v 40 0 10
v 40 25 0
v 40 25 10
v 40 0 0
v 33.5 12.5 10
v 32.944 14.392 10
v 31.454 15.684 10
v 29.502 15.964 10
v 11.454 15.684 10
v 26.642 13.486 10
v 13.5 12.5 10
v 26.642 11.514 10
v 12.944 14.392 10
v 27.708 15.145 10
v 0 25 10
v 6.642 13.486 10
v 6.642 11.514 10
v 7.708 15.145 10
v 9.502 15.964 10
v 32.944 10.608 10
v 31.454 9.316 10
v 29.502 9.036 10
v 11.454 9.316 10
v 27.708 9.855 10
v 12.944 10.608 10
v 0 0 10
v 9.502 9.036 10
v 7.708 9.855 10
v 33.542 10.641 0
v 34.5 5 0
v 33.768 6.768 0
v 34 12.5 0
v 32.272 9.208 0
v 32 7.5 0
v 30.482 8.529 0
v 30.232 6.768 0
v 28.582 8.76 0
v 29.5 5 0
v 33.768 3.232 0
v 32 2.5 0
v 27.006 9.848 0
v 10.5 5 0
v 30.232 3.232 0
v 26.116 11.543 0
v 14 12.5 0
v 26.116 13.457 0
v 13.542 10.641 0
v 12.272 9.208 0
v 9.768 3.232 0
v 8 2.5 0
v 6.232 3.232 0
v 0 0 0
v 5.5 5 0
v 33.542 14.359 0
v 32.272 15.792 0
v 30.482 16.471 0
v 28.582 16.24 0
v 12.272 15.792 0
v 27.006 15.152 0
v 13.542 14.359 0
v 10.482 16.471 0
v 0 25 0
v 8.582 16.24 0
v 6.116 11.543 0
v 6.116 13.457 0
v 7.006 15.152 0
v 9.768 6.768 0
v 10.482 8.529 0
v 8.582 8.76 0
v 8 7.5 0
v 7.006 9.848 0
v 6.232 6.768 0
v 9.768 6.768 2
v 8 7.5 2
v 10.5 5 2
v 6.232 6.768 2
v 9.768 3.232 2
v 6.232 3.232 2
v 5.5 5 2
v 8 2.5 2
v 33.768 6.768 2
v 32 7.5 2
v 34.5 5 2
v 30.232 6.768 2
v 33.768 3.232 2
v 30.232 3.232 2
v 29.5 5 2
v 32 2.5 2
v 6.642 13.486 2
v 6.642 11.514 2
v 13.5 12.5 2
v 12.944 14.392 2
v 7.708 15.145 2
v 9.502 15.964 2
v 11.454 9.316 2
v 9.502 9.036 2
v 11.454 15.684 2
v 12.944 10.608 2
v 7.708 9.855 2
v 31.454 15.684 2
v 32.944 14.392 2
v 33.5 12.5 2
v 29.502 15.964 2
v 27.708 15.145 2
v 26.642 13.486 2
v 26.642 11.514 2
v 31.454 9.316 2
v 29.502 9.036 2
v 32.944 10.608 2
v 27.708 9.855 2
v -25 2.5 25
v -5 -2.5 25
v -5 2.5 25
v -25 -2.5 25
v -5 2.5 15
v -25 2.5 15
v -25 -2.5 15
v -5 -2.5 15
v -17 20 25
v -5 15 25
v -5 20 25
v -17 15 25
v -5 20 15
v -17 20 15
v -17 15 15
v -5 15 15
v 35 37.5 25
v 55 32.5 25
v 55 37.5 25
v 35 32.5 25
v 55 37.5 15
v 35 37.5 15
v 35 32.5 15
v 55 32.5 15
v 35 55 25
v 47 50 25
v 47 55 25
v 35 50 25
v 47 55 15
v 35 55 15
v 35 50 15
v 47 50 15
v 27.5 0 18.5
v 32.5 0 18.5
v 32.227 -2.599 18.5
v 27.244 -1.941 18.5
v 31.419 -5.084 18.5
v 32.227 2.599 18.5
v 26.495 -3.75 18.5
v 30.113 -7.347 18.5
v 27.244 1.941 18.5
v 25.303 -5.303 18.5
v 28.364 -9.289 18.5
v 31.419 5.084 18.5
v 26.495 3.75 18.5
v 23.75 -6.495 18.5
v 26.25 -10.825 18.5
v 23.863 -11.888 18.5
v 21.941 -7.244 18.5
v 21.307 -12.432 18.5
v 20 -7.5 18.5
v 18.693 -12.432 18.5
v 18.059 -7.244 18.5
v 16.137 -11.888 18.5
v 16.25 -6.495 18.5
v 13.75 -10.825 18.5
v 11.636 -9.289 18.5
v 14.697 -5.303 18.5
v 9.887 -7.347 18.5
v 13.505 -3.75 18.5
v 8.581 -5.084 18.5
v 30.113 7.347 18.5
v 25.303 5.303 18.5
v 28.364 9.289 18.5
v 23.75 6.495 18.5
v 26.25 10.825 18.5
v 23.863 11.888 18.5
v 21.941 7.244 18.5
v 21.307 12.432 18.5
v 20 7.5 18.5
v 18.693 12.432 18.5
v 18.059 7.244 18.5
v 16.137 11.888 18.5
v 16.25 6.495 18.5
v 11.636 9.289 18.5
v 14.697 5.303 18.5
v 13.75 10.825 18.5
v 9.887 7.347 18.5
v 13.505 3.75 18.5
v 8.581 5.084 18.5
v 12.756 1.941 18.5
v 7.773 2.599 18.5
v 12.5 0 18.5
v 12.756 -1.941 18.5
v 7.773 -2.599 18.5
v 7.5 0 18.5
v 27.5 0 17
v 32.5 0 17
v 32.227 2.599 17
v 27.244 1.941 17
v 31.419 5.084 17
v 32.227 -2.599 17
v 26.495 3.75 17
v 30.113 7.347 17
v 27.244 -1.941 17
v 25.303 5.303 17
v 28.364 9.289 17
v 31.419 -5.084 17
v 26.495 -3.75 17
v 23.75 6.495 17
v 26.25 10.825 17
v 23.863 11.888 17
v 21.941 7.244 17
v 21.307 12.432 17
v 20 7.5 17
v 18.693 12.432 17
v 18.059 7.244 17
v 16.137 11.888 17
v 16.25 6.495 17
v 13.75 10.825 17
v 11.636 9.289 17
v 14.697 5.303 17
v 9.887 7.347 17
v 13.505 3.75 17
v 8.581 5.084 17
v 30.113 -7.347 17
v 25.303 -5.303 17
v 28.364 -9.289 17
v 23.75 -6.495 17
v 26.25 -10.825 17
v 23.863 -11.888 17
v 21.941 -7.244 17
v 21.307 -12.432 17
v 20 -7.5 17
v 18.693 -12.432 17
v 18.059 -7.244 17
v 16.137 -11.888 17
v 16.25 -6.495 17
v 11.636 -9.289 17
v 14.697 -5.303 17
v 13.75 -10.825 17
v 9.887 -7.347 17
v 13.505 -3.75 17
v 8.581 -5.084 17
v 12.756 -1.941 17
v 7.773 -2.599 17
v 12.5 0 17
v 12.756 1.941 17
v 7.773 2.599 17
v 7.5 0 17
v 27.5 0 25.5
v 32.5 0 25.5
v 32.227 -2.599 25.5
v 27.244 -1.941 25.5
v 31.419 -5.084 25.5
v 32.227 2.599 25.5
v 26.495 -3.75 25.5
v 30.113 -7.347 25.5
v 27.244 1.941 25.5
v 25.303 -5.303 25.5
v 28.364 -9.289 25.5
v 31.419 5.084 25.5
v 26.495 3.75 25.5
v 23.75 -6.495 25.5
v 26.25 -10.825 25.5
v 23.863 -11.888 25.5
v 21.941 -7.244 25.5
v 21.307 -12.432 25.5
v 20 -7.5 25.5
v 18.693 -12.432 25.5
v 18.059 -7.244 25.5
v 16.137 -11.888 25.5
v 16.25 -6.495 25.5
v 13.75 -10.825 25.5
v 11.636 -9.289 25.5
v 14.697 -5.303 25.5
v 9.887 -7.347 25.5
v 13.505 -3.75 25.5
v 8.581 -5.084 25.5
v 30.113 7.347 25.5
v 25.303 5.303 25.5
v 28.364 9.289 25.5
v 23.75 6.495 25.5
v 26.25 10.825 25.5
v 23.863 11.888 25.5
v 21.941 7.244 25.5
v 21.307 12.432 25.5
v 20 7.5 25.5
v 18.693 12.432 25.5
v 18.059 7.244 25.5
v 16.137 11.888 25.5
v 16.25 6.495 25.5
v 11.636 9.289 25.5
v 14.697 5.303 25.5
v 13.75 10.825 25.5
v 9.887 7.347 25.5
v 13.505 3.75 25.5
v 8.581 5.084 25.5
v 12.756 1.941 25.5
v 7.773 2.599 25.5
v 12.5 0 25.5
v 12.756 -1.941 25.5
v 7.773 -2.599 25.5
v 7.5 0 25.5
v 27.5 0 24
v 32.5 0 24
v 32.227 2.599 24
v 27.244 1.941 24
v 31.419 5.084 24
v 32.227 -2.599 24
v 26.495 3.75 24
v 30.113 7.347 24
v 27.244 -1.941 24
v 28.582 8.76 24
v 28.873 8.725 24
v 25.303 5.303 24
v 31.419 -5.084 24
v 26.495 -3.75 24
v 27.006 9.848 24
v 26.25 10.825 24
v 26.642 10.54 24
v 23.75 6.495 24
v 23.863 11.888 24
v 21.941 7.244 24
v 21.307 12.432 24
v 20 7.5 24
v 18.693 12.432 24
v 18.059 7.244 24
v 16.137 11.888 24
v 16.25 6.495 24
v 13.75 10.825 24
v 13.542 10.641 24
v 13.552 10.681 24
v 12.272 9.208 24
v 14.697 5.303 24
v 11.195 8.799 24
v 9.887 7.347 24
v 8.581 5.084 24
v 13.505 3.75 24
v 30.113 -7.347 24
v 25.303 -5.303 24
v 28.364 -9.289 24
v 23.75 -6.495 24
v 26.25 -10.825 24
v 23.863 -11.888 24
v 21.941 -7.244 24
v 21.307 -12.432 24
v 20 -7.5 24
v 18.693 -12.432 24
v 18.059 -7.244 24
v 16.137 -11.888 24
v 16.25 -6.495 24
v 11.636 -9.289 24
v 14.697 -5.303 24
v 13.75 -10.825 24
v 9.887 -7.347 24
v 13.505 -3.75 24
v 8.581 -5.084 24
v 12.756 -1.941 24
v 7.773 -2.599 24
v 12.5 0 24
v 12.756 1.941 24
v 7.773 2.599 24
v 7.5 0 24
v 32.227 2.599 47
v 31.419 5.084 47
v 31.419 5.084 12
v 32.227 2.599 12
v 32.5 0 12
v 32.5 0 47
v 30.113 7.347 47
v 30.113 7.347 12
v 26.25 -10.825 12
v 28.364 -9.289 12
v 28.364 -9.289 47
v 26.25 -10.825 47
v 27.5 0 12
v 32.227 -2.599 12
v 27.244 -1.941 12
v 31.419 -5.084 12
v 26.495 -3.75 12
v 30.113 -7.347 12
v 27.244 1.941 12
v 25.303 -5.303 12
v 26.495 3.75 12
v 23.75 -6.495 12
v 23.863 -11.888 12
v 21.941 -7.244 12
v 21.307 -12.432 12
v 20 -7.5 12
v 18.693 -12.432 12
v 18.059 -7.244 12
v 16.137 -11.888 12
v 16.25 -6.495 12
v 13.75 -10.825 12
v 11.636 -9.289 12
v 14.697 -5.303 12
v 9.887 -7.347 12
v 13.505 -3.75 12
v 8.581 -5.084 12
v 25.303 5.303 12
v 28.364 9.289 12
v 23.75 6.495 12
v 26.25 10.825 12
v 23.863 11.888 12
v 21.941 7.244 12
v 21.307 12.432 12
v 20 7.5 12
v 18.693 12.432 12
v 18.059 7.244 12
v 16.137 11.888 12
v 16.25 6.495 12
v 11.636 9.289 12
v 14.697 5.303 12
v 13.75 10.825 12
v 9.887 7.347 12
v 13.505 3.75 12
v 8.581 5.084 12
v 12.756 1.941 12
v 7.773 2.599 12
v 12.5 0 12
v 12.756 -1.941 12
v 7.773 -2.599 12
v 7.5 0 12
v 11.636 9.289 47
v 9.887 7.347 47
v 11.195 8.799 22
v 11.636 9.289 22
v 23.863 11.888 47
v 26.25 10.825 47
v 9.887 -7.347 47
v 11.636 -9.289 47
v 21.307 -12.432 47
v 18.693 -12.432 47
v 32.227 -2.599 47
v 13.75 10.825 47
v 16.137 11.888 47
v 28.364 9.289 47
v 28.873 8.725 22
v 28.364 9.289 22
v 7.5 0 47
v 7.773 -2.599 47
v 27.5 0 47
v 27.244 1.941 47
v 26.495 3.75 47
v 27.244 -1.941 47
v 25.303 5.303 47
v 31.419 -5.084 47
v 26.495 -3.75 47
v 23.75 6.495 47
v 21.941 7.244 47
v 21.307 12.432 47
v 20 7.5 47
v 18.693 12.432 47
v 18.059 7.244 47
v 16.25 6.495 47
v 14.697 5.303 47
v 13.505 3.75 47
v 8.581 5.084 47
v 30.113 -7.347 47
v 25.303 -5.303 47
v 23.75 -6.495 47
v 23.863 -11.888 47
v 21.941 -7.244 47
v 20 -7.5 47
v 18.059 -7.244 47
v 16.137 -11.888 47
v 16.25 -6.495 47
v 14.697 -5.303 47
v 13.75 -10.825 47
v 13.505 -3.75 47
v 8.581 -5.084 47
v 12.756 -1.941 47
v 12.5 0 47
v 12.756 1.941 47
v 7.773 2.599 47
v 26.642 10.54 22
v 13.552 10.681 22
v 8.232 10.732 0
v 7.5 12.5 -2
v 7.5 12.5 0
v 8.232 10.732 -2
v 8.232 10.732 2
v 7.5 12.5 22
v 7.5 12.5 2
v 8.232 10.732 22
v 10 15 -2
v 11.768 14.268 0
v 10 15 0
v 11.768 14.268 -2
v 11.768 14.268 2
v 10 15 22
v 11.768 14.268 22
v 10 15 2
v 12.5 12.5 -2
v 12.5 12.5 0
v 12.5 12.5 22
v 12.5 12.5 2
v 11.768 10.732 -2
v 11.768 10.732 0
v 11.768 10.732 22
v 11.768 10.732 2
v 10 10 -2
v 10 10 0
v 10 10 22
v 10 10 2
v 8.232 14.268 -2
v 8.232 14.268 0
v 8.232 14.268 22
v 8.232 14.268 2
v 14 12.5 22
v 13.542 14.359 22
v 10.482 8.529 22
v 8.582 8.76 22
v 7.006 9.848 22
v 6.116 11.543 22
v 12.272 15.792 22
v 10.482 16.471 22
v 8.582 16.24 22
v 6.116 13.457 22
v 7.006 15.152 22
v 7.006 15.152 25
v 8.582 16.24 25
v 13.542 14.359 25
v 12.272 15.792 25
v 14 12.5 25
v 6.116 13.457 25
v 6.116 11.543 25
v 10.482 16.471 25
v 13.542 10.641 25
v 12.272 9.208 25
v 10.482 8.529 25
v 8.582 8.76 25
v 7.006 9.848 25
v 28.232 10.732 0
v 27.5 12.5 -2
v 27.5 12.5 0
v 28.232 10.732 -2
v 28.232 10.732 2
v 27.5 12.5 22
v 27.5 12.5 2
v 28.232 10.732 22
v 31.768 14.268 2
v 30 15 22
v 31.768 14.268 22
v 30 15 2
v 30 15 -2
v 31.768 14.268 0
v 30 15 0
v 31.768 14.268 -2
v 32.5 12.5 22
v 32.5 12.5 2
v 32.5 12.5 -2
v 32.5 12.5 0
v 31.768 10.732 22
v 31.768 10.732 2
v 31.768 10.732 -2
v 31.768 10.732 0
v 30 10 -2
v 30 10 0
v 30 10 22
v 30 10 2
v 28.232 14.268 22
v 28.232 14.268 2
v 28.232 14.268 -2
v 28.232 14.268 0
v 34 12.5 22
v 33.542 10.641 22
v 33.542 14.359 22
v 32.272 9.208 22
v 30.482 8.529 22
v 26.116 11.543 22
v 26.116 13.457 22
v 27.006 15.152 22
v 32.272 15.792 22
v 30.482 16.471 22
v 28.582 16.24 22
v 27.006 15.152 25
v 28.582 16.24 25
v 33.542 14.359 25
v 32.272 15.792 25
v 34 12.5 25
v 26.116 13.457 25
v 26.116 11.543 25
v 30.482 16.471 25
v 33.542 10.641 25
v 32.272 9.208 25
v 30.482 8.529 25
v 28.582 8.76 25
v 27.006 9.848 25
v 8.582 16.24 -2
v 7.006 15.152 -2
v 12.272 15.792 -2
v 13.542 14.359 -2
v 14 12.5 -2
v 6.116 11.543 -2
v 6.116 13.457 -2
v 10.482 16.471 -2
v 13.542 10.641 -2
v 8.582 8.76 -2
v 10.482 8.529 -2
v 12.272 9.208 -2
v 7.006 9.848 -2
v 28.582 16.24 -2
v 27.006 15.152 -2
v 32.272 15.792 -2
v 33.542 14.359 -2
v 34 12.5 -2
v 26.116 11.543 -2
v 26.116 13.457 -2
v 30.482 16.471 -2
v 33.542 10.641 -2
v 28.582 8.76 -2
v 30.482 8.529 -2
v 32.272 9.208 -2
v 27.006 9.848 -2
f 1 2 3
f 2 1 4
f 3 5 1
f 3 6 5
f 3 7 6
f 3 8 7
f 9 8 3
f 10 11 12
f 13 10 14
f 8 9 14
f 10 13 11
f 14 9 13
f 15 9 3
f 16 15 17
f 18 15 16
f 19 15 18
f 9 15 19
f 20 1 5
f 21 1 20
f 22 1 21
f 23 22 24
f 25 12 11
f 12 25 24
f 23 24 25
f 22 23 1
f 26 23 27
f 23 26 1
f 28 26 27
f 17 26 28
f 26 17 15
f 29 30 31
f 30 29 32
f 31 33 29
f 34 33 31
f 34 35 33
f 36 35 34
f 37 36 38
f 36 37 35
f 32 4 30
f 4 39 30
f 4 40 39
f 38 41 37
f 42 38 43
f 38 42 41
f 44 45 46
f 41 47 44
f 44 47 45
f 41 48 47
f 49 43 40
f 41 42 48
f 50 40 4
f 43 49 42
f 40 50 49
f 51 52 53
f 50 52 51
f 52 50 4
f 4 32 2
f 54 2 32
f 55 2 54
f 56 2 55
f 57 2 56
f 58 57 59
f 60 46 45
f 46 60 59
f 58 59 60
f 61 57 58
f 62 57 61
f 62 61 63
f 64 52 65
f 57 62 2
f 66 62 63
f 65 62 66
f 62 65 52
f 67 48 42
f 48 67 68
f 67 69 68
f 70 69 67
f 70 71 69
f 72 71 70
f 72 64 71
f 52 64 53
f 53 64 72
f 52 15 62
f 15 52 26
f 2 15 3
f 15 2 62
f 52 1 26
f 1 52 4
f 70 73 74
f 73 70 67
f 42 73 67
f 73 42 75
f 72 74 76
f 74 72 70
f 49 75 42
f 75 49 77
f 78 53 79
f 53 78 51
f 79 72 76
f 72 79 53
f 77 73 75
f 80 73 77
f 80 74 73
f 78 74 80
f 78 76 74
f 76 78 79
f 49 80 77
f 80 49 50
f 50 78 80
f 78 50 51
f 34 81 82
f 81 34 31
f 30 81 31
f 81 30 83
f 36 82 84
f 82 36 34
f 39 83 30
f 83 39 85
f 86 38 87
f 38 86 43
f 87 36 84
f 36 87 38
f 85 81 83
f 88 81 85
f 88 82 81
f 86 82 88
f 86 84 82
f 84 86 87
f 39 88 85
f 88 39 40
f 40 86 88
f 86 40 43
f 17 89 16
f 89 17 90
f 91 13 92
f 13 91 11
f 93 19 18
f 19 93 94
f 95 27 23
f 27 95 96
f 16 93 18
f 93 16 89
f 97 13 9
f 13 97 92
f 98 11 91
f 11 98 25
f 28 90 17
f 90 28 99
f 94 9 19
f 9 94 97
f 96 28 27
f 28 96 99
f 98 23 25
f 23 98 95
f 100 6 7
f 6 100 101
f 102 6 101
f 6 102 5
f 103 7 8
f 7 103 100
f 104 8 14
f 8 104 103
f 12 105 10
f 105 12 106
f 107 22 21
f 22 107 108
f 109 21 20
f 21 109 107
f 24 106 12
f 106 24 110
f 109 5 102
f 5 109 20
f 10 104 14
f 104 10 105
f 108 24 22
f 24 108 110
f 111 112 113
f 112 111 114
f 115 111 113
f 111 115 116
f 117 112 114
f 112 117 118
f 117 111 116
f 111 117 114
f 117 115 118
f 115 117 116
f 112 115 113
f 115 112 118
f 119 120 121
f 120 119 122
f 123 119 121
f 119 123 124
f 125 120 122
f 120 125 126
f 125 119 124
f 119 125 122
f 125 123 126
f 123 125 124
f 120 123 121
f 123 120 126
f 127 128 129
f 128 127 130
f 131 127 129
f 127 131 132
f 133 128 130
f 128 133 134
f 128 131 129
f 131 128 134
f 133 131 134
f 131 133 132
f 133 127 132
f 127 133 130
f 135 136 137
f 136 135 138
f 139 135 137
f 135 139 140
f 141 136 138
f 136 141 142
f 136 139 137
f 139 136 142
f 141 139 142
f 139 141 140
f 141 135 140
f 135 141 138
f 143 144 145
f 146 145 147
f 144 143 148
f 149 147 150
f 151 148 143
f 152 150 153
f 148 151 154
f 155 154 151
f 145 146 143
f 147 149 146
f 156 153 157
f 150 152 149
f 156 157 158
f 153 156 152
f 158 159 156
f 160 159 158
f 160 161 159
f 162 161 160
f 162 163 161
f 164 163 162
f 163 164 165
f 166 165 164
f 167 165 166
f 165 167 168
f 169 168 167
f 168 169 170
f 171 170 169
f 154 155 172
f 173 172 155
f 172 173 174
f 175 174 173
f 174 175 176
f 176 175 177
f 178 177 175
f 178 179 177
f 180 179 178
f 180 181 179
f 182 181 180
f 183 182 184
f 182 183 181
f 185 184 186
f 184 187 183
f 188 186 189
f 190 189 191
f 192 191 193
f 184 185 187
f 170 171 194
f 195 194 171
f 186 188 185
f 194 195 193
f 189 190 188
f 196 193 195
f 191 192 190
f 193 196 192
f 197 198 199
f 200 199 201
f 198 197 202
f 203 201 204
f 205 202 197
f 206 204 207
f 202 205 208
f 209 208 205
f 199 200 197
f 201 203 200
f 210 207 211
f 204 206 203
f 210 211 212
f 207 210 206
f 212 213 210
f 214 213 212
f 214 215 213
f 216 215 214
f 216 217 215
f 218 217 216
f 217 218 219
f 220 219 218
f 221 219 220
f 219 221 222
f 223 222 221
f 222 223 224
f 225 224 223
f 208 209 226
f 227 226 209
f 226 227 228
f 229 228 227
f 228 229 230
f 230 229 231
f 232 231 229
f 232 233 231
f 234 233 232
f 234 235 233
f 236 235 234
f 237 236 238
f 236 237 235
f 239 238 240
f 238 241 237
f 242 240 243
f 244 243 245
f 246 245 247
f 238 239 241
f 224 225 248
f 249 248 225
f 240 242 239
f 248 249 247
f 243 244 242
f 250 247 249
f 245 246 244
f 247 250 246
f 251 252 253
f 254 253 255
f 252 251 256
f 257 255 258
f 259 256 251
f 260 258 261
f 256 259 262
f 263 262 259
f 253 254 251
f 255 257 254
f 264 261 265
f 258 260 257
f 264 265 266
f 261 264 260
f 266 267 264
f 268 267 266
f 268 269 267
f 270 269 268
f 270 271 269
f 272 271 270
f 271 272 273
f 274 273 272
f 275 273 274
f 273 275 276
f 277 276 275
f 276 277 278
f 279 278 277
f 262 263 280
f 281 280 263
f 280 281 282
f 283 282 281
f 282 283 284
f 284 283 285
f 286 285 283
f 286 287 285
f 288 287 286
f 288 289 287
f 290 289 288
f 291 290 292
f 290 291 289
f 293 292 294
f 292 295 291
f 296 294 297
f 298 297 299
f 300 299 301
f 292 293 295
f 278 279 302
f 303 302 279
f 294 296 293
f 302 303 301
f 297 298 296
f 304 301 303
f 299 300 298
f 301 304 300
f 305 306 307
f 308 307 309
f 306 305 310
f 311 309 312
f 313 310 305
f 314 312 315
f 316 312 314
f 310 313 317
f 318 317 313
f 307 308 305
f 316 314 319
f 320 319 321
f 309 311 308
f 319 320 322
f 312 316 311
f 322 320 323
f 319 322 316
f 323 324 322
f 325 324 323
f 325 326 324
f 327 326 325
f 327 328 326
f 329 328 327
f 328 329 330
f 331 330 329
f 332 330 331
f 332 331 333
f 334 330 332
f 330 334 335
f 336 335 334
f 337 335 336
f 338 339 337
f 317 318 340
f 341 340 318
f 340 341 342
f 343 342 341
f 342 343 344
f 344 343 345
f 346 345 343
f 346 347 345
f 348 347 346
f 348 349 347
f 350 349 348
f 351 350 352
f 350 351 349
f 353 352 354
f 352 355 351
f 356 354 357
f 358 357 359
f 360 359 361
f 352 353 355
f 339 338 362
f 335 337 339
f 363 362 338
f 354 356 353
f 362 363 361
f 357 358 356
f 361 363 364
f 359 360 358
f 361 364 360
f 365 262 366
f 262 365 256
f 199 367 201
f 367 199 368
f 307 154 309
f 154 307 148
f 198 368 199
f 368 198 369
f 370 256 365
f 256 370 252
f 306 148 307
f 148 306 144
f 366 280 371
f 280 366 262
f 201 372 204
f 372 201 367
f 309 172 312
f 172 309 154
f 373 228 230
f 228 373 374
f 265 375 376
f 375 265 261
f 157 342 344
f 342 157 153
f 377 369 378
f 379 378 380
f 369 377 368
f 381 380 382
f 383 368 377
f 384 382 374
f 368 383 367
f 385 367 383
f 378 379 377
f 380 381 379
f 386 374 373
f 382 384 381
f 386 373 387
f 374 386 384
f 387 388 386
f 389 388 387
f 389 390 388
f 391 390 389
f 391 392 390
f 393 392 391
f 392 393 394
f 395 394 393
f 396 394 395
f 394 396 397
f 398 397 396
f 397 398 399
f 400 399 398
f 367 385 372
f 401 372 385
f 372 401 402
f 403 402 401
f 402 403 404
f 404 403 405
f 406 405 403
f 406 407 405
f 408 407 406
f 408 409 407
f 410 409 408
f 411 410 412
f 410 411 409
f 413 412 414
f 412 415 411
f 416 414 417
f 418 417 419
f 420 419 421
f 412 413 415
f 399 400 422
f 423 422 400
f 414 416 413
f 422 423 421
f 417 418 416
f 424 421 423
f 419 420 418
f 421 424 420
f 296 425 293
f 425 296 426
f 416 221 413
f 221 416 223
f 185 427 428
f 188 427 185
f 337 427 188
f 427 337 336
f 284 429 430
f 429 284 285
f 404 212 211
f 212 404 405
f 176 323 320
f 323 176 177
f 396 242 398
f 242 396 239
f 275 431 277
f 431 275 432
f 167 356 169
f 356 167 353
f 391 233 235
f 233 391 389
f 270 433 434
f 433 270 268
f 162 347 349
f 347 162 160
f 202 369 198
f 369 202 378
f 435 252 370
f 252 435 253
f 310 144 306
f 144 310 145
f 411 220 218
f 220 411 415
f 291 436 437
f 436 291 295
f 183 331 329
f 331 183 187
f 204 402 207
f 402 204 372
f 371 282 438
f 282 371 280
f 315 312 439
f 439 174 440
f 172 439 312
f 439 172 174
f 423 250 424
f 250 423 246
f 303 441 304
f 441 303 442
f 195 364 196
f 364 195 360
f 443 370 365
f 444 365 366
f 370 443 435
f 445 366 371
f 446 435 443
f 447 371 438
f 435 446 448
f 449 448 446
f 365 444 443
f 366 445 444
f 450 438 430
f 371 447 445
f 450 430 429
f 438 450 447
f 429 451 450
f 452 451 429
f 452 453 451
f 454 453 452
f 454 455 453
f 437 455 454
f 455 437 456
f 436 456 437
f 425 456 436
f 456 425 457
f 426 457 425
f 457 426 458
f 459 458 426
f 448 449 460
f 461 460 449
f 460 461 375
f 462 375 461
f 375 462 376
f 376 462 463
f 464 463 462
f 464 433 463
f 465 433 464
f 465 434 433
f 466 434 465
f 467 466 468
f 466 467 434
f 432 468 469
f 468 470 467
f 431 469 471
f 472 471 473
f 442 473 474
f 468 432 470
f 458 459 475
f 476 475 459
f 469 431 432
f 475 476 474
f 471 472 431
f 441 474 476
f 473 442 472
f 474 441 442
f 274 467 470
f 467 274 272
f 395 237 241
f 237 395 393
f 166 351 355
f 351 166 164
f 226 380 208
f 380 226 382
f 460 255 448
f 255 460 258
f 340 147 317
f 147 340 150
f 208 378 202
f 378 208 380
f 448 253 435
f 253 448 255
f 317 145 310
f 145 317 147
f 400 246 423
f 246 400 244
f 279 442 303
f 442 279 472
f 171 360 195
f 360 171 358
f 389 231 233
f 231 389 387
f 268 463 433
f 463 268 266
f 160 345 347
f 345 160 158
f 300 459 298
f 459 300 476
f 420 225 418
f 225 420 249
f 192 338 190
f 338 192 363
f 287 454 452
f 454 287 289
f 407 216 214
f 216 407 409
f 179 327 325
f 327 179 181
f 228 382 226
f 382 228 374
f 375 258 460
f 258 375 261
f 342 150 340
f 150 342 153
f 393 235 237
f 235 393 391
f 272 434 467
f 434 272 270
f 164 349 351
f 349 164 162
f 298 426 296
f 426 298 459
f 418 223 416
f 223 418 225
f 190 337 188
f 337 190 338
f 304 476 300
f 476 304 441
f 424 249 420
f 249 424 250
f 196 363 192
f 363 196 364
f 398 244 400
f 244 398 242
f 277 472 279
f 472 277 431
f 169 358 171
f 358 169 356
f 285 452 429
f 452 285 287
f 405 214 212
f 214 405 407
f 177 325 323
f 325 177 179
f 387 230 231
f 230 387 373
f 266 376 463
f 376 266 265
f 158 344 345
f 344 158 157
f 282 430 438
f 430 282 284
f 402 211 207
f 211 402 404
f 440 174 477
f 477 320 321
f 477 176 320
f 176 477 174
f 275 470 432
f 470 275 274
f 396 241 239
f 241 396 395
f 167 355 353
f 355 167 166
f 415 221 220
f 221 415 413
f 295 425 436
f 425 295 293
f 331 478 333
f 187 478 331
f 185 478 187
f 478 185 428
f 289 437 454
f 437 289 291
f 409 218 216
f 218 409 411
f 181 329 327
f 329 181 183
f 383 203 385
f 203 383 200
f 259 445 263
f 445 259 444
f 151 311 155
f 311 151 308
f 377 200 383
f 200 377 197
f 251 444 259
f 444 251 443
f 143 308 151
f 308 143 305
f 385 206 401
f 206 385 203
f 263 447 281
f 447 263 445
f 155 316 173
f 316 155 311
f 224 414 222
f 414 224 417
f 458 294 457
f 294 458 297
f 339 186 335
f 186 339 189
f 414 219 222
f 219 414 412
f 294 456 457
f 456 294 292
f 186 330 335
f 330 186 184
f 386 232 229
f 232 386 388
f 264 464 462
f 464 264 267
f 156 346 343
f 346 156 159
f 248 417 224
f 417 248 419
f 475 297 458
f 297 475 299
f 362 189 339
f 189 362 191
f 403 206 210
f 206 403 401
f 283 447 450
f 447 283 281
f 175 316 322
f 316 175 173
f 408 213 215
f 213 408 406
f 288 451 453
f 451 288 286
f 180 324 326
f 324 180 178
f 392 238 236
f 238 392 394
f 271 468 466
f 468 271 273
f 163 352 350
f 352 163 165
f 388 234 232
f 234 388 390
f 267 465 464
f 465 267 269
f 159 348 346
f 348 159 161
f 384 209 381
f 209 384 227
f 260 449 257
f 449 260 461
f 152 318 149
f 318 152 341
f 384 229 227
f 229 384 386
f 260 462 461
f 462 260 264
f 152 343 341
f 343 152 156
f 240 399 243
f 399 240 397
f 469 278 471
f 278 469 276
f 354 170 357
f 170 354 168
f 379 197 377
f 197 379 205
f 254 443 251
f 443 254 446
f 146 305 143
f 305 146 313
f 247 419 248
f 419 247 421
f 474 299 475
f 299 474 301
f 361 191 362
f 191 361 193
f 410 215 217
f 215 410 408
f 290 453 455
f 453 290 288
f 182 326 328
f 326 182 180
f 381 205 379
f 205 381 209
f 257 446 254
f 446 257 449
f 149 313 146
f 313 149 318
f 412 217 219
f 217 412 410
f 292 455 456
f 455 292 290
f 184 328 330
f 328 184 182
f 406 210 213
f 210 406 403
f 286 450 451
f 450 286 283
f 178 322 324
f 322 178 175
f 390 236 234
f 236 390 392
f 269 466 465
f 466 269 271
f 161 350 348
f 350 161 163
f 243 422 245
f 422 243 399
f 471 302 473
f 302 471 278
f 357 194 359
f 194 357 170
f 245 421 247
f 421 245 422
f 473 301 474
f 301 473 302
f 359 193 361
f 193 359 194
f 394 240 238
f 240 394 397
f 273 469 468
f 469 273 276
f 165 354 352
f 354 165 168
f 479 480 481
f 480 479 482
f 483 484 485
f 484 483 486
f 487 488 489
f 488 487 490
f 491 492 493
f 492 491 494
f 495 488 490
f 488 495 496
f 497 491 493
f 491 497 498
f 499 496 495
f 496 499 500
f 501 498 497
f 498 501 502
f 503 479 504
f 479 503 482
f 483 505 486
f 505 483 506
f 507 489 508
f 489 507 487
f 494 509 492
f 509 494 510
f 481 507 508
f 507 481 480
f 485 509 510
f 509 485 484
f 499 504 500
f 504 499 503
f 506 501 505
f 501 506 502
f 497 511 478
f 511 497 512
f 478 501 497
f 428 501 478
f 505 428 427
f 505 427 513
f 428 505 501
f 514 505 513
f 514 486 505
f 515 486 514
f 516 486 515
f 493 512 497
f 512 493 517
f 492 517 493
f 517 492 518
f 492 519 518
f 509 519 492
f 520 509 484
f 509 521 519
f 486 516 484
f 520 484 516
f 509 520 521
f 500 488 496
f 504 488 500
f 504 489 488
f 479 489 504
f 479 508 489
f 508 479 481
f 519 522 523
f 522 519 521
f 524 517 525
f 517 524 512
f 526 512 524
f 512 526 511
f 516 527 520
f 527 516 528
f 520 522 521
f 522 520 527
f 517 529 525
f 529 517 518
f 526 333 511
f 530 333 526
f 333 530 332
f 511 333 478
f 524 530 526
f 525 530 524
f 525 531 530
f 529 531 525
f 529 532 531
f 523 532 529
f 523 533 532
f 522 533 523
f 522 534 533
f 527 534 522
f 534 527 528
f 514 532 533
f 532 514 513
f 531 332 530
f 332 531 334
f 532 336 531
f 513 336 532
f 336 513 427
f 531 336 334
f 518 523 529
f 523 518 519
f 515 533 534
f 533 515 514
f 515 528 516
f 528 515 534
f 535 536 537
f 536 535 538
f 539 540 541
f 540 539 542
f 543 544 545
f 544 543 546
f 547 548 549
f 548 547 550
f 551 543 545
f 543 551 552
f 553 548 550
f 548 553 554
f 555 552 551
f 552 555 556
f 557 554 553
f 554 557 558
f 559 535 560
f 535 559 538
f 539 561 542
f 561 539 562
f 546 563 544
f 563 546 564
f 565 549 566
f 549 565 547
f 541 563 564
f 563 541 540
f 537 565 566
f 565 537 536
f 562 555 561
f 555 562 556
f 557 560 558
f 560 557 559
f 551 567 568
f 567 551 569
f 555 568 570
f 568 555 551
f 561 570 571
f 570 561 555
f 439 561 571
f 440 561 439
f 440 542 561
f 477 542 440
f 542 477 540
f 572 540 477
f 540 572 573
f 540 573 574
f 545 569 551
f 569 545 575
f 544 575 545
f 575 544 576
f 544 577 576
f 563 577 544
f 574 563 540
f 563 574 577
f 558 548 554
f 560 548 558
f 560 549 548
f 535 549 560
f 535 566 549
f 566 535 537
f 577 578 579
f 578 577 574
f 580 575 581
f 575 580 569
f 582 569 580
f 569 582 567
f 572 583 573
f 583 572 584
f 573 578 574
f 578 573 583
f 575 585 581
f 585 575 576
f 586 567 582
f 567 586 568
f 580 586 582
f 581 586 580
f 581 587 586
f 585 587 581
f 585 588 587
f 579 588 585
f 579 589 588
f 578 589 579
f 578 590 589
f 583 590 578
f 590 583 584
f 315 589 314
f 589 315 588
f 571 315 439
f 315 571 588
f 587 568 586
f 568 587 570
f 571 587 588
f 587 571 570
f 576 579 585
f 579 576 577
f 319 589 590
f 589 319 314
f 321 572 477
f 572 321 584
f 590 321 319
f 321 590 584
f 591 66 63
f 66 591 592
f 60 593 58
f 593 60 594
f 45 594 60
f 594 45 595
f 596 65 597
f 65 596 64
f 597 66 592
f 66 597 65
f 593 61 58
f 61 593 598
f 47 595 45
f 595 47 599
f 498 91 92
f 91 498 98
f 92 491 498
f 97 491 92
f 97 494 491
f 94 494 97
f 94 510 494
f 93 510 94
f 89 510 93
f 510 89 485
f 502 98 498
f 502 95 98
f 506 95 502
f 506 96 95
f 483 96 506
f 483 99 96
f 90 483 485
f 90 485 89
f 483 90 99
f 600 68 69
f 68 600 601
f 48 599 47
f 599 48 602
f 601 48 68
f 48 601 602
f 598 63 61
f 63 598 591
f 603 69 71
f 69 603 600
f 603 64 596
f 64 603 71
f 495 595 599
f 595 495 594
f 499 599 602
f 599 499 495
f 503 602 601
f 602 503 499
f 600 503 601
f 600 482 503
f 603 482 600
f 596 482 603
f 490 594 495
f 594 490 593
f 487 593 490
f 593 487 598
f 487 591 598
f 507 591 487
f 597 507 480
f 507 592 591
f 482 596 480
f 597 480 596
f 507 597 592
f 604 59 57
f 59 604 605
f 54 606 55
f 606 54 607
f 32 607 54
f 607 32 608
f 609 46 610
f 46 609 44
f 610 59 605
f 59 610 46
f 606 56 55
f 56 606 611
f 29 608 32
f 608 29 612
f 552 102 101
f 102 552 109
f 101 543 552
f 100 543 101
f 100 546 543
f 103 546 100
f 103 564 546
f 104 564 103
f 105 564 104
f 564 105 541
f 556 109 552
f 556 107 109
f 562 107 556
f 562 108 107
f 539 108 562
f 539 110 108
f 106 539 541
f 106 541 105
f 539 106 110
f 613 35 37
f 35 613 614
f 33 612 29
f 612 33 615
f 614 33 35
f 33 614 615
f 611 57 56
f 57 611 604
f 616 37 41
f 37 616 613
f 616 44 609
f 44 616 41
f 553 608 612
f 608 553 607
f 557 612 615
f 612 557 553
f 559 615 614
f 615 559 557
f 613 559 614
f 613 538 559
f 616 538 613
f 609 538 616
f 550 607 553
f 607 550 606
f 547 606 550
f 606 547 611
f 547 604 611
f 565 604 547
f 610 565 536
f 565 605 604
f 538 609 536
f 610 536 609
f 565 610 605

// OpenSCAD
// Function to create a bolt
module bolt(length = 22, diameter = 5, head_diameter = 8, head_height = 3) {
    union() {
        cylinder(h = length, d = diameter, center = false);
        translate([0, 0, length])
            cylinder(h = head_height, d = head_diameter, center = false);
    }
}

// Function to create a nut
module nut(diameter = 8, height = 4, thread_diameter = 5) {
    difference() {
        cylinder(h = height, d = diameter, center = false);
        translate([0, 0, -1])
            cylinder(h = height + 2, d = thread_diameter, center = false);
    }
}

// Creating the base block
module base_block() {
    difference() {
        cube([40, 25, 10]);
        
        // Adjusted front circular recesses for alignment
        translate([8, 5, 0])
            cylinder(h = 2, d = 5, center = false);
        translate([32, 5, 0])
            cylinder(h = 2, d = 5, center = false);

        // Correcting threaded holes alignment and sizes
        translate([10, 12.5, -1])
            cylinder(h = 12, d = 7, center = false);
        translate([30, 12.5, -1])
            cylinder(h = 12, d = 7, center = false);
    }
}

// Clamp arm left model
module clamp_arm_left() {
    difference() {
        union() {
            translate([0, 12.5, 5])
                rotate([0, 0, 90])
                    cube([5, 20, 10]);
            translate([0, 30, 5])
                rotate([0, 0, 90])
                    cube([5, 12, 10]);
        }
        // Smooth curvature improvement
        translate([15, 22.5, 10])
            rotate([0, 0, 90])
                cylinder(h = 10, r = 7);
    }
}

// Clamp arm right model
module clamp_arm_right() {
    mirror([1, 0, 0])
        clamp_arm_left();
}

// Central hollow cylinder
module central_hollow_cylinder() {
    difference() {
        cylinder(h = 35, d = 25);
        translate([0, 0, -1])
            cylinder(h = 37, d = 15);

        // Added circular grooves for connection
        for (i = [-12, -5, 5, 12])
            translate([0, 0, i])
                cylinder(h = 1.5, d = 27);
    }
}

// Assembly function
module assembly() {
    base_block();

    // Improved clamp arms positioning
    translate([-5, -15, 10])
        clamp_arm_left();
    translate([35, 20, 10])
        clamp_arm_right();

    // Central hollow cylinder with updated grooves
    translate([20, 0, 12])
        central_hollow_cylinder();

    // Proper bolt and nut placements
    translate([10, 12.5, 0])
        bolt();
    translate([30, 12.5, 0])
        bolt();

    translate([10, 12.5, -2])
        nut();
    translate([30, 12.5, -2])
        nut();
}

// Render the assembly
assembly();
